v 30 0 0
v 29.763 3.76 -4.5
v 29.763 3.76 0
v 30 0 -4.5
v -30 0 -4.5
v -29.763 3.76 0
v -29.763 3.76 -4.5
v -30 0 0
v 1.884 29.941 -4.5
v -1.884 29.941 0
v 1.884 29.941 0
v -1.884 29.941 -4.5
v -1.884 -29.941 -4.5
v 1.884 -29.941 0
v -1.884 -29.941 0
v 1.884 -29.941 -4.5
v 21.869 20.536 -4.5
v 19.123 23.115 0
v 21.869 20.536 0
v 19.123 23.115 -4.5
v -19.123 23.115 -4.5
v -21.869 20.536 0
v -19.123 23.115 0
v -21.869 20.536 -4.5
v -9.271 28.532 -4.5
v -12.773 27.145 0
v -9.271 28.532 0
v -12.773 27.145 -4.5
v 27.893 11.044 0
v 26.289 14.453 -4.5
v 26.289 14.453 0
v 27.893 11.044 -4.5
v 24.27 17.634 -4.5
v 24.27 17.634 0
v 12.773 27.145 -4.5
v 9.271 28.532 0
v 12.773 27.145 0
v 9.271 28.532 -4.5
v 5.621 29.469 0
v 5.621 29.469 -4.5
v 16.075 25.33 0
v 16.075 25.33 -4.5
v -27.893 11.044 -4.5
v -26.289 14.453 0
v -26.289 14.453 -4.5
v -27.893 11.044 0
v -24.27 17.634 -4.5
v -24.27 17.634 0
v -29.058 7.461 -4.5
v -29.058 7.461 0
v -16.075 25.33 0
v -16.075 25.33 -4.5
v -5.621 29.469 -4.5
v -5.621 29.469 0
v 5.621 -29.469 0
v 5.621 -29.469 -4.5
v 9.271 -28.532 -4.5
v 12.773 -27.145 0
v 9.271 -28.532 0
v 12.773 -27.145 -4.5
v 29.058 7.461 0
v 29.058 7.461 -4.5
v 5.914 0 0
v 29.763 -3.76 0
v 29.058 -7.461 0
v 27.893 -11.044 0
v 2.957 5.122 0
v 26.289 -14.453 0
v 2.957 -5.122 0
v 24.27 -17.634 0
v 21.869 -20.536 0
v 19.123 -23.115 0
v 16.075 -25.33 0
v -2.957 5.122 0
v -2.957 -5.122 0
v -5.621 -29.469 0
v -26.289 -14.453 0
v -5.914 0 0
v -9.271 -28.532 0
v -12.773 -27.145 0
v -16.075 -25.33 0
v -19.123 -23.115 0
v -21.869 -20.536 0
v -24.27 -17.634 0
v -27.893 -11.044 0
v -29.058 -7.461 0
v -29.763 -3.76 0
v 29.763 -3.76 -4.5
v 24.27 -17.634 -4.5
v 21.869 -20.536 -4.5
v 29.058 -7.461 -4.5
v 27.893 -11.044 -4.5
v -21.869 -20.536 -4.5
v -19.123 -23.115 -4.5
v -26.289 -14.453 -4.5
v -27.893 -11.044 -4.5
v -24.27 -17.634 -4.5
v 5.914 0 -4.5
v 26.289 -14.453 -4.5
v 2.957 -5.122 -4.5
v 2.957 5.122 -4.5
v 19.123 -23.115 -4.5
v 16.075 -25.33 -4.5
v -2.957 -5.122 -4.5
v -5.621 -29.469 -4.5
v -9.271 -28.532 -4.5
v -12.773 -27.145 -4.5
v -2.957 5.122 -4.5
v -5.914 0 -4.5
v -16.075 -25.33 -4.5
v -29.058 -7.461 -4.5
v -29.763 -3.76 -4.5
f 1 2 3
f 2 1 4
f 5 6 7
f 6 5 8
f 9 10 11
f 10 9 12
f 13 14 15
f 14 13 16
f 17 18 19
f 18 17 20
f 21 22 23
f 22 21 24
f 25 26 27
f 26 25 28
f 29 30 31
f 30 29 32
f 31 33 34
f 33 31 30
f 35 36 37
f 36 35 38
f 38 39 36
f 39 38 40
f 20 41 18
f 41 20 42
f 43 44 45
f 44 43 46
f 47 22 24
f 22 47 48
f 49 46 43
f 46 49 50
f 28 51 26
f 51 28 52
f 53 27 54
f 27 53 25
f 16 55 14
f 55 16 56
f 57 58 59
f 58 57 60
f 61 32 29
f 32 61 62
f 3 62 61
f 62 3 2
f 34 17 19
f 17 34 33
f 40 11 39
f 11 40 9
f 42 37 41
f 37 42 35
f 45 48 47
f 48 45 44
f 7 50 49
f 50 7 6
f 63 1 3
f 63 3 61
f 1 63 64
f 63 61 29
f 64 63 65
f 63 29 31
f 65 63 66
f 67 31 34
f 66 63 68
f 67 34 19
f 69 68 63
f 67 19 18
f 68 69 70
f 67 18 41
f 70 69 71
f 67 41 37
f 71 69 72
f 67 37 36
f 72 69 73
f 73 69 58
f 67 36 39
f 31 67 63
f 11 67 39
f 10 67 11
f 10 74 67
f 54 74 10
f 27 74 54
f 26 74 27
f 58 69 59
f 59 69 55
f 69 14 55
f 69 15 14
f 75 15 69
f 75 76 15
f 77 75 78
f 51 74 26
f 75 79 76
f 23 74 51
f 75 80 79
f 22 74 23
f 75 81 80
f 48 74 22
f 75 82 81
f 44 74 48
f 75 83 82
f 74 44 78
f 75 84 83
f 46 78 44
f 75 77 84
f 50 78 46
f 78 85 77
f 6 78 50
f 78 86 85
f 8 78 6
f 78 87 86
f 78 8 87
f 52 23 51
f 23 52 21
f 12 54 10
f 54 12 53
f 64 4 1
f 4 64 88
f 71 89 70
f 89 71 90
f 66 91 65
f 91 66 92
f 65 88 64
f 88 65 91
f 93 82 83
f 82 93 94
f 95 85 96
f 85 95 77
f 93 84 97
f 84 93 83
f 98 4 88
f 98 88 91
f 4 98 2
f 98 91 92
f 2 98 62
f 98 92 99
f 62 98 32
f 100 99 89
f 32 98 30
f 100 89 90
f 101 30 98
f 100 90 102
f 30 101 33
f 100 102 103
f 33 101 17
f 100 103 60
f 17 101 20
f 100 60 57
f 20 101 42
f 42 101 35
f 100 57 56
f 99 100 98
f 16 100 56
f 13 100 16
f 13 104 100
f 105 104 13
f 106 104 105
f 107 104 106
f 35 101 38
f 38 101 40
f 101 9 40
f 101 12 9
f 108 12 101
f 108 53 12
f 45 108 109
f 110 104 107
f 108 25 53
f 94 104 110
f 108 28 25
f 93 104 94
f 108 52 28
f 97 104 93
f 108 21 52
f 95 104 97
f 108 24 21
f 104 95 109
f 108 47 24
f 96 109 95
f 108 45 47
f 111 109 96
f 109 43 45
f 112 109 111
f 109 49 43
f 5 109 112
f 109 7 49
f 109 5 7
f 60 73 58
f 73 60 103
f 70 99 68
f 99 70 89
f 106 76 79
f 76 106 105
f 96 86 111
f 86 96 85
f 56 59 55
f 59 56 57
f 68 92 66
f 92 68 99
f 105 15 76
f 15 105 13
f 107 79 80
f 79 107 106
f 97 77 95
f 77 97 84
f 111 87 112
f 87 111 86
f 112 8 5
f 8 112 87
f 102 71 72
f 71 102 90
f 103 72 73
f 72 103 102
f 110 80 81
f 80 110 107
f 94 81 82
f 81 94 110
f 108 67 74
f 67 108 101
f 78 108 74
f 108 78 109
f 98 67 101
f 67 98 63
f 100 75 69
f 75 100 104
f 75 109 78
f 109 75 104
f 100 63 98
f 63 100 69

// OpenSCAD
$fn = 50;


difference() {
	union() {
		translate(v = [0, 0, -4.5000000000]) {
			cylinder(h = 4.5000000000, r = 30.0000000000);
		}
		translate(v = [0, 0, -6.0000000000]) {
			cylinder(h = 6, r = 2.8750000000);
		}
	}
	union() {
		translate(v = [0, 0, 0]) {
			rotate(a = [0, 0, 0]) {
				difference() {
					union() {
						translate(v = [0, 0, -5]) {
							linear_extrude(height = 5) {
								polygon(points = [[5.9142500000, 0.0000000000], [2.9571250000, 5.1218907443], [-2.9571250000, 5.1218907443], [-5.9142500000, 0.0000000000], [-2.9571250000, -5.1218907443], [2.9571250000, -5.1218907443]]);
							}
						}
					}
					union();
				}
			}
		}
		#translate(v = [0, 0, -100.0000000000]) {
			cylinder(h = 200, r = 3.2500000000);
		}
	}
}
